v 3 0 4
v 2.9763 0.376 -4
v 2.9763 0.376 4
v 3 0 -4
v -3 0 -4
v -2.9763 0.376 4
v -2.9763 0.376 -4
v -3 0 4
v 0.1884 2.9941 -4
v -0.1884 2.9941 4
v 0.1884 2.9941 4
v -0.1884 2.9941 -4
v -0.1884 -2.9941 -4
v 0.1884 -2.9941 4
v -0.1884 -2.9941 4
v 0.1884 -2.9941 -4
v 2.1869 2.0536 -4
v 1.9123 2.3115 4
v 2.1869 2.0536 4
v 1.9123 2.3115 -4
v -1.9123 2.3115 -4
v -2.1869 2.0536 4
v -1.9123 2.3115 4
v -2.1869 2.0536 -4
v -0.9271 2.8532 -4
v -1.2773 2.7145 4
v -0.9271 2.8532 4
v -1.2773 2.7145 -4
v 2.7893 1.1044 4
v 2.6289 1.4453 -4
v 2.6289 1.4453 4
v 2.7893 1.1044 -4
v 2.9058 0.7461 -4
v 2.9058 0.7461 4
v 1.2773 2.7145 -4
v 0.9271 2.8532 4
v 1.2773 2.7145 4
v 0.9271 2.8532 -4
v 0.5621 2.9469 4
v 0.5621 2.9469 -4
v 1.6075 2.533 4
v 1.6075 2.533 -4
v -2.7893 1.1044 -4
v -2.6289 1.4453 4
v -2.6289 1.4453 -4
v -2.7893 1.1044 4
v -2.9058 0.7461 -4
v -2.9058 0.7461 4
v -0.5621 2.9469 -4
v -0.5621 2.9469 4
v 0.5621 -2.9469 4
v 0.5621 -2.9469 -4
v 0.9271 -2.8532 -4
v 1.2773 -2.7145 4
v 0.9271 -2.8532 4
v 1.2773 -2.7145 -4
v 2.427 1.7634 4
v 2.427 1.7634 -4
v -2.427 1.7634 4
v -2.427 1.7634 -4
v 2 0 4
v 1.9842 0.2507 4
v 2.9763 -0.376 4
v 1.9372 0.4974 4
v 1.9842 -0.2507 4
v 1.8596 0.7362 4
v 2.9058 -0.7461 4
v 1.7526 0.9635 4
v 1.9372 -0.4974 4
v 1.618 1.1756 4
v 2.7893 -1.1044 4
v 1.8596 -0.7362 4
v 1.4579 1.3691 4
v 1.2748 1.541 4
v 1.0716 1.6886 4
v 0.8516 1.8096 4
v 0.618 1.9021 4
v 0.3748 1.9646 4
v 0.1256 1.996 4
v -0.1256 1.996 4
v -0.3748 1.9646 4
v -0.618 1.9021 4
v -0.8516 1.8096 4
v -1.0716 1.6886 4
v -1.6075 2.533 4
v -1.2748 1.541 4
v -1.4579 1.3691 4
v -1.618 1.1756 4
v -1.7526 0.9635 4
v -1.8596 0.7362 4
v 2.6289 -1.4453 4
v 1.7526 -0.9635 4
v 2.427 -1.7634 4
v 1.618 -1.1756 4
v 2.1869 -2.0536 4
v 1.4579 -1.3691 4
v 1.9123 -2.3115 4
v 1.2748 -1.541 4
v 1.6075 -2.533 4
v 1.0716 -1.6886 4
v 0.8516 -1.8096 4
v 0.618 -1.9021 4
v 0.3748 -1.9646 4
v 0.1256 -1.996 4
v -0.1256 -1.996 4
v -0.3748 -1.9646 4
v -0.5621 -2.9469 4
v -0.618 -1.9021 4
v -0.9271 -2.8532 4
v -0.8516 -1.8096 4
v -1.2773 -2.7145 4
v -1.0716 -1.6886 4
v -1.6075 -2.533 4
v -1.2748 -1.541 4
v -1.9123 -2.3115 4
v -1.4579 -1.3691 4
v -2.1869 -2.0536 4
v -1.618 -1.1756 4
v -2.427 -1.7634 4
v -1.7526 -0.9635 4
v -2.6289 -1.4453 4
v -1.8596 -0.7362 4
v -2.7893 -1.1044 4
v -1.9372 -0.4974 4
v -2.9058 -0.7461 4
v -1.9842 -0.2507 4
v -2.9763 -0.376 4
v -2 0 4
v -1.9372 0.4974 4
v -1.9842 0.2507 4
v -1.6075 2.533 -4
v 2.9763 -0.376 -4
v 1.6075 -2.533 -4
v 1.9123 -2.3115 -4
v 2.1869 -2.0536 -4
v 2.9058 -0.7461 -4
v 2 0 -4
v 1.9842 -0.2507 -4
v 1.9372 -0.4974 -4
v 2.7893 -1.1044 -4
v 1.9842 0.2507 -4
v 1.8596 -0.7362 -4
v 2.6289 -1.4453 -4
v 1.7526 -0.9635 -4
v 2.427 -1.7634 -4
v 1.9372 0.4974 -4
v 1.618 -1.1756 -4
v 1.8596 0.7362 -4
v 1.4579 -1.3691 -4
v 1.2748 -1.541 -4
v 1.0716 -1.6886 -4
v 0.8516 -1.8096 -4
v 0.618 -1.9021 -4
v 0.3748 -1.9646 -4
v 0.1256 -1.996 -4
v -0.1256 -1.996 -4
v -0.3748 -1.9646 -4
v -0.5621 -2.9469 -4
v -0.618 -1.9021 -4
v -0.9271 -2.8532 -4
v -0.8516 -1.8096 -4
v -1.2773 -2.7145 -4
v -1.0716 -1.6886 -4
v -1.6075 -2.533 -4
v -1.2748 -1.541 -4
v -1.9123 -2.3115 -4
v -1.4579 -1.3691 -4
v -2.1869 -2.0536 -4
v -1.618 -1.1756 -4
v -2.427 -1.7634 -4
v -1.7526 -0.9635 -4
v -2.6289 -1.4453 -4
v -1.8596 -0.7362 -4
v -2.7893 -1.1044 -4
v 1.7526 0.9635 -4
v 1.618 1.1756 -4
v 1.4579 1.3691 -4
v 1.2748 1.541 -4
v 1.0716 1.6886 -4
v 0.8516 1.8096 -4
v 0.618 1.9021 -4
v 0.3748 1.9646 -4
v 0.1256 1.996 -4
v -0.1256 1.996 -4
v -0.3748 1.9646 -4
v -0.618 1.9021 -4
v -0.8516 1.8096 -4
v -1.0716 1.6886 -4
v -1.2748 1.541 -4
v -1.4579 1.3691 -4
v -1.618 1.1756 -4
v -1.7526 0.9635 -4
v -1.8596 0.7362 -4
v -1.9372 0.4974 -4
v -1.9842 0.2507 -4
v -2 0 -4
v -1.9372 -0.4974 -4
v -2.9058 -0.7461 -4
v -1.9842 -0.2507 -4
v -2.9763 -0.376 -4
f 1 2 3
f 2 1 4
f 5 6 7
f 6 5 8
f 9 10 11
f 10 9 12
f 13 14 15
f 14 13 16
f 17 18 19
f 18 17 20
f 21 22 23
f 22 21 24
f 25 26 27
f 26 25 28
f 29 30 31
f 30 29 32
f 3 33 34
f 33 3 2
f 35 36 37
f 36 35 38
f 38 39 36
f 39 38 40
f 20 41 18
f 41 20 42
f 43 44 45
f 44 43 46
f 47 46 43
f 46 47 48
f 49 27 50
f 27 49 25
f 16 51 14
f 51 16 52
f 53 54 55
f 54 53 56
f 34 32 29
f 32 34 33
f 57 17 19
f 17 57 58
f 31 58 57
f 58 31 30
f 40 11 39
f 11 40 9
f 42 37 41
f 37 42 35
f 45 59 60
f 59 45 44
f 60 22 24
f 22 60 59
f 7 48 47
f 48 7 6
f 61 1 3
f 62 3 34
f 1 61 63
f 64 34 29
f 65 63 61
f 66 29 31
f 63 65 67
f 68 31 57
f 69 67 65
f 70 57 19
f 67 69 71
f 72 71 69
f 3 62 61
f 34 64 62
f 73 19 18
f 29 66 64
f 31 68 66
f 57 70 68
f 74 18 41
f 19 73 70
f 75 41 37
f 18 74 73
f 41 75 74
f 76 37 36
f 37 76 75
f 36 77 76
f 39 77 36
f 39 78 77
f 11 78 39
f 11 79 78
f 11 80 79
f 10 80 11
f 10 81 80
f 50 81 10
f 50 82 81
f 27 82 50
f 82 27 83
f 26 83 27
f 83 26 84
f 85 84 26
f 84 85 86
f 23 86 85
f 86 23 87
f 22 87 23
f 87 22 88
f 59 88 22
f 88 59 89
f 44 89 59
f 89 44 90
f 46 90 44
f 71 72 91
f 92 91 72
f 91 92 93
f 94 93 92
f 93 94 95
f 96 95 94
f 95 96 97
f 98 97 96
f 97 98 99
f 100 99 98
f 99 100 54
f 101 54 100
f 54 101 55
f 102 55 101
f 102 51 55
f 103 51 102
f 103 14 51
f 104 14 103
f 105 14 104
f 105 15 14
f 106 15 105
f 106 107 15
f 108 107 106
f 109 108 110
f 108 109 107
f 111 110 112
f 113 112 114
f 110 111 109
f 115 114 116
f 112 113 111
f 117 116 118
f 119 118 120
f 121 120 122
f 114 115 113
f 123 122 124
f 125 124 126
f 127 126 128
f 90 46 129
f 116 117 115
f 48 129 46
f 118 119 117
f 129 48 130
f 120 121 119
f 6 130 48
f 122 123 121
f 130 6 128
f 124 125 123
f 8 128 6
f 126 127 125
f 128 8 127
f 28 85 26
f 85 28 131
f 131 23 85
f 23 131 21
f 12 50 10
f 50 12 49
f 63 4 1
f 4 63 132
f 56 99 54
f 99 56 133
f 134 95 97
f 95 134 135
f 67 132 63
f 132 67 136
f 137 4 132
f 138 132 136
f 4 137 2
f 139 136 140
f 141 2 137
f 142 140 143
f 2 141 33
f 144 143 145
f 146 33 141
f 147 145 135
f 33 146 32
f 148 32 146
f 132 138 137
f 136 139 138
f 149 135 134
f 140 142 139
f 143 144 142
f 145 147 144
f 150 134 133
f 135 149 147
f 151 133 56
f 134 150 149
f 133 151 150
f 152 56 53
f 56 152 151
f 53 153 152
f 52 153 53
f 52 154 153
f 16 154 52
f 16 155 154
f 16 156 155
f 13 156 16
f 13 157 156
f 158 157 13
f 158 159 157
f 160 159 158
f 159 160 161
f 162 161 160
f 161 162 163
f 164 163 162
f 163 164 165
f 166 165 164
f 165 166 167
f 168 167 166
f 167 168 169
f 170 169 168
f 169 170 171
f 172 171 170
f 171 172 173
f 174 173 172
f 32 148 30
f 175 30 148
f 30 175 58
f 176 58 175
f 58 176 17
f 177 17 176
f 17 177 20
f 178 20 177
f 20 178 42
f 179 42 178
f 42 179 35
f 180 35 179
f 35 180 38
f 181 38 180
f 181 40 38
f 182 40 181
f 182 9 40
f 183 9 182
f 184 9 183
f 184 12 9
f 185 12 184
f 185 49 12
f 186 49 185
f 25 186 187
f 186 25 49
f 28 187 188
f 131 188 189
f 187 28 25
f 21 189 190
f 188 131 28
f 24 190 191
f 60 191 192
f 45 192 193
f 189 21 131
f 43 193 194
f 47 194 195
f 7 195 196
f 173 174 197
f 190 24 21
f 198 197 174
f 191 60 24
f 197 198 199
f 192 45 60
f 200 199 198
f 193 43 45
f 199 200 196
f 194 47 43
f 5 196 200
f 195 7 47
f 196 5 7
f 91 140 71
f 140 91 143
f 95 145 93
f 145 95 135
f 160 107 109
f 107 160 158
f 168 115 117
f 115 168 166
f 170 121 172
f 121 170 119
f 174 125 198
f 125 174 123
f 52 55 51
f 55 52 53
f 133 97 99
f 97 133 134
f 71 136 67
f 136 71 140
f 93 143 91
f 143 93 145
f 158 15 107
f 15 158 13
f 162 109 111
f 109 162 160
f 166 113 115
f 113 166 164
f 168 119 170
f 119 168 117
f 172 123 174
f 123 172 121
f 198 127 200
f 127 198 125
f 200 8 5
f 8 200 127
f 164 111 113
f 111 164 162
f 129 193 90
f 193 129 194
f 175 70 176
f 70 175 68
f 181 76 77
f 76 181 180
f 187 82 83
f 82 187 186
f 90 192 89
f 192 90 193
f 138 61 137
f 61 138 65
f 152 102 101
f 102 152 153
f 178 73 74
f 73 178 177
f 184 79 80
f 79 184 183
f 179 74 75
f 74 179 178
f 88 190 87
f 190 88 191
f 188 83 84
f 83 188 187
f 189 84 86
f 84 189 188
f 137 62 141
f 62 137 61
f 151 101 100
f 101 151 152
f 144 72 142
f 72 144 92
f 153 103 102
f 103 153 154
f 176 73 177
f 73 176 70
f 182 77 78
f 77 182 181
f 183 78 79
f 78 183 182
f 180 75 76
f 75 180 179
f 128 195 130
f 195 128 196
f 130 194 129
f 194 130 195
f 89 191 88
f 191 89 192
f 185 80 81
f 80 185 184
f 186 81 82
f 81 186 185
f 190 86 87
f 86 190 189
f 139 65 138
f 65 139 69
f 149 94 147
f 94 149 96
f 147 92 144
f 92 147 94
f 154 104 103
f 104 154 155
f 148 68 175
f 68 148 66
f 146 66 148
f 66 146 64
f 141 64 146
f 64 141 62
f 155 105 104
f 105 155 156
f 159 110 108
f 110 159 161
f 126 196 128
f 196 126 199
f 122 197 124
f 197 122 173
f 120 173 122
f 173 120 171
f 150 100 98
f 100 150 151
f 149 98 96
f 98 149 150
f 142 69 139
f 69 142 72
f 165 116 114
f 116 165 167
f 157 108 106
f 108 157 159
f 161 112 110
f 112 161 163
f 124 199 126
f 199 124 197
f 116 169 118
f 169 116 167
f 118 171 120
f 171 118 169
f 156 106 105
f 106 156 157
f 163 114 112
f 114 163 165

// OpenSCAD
$fn = 50;


difference() {
	union() {
		translate(v = [0, 0, -4.0000000000]) {
			cylinder(h = 8, r = 3.0000000000);
		}
	}
	union() {
		translate(v = [0, 0, -100.0000000000]) {
			cylinder(h = 200, r = 2.0000000000);
		}
	}
}
